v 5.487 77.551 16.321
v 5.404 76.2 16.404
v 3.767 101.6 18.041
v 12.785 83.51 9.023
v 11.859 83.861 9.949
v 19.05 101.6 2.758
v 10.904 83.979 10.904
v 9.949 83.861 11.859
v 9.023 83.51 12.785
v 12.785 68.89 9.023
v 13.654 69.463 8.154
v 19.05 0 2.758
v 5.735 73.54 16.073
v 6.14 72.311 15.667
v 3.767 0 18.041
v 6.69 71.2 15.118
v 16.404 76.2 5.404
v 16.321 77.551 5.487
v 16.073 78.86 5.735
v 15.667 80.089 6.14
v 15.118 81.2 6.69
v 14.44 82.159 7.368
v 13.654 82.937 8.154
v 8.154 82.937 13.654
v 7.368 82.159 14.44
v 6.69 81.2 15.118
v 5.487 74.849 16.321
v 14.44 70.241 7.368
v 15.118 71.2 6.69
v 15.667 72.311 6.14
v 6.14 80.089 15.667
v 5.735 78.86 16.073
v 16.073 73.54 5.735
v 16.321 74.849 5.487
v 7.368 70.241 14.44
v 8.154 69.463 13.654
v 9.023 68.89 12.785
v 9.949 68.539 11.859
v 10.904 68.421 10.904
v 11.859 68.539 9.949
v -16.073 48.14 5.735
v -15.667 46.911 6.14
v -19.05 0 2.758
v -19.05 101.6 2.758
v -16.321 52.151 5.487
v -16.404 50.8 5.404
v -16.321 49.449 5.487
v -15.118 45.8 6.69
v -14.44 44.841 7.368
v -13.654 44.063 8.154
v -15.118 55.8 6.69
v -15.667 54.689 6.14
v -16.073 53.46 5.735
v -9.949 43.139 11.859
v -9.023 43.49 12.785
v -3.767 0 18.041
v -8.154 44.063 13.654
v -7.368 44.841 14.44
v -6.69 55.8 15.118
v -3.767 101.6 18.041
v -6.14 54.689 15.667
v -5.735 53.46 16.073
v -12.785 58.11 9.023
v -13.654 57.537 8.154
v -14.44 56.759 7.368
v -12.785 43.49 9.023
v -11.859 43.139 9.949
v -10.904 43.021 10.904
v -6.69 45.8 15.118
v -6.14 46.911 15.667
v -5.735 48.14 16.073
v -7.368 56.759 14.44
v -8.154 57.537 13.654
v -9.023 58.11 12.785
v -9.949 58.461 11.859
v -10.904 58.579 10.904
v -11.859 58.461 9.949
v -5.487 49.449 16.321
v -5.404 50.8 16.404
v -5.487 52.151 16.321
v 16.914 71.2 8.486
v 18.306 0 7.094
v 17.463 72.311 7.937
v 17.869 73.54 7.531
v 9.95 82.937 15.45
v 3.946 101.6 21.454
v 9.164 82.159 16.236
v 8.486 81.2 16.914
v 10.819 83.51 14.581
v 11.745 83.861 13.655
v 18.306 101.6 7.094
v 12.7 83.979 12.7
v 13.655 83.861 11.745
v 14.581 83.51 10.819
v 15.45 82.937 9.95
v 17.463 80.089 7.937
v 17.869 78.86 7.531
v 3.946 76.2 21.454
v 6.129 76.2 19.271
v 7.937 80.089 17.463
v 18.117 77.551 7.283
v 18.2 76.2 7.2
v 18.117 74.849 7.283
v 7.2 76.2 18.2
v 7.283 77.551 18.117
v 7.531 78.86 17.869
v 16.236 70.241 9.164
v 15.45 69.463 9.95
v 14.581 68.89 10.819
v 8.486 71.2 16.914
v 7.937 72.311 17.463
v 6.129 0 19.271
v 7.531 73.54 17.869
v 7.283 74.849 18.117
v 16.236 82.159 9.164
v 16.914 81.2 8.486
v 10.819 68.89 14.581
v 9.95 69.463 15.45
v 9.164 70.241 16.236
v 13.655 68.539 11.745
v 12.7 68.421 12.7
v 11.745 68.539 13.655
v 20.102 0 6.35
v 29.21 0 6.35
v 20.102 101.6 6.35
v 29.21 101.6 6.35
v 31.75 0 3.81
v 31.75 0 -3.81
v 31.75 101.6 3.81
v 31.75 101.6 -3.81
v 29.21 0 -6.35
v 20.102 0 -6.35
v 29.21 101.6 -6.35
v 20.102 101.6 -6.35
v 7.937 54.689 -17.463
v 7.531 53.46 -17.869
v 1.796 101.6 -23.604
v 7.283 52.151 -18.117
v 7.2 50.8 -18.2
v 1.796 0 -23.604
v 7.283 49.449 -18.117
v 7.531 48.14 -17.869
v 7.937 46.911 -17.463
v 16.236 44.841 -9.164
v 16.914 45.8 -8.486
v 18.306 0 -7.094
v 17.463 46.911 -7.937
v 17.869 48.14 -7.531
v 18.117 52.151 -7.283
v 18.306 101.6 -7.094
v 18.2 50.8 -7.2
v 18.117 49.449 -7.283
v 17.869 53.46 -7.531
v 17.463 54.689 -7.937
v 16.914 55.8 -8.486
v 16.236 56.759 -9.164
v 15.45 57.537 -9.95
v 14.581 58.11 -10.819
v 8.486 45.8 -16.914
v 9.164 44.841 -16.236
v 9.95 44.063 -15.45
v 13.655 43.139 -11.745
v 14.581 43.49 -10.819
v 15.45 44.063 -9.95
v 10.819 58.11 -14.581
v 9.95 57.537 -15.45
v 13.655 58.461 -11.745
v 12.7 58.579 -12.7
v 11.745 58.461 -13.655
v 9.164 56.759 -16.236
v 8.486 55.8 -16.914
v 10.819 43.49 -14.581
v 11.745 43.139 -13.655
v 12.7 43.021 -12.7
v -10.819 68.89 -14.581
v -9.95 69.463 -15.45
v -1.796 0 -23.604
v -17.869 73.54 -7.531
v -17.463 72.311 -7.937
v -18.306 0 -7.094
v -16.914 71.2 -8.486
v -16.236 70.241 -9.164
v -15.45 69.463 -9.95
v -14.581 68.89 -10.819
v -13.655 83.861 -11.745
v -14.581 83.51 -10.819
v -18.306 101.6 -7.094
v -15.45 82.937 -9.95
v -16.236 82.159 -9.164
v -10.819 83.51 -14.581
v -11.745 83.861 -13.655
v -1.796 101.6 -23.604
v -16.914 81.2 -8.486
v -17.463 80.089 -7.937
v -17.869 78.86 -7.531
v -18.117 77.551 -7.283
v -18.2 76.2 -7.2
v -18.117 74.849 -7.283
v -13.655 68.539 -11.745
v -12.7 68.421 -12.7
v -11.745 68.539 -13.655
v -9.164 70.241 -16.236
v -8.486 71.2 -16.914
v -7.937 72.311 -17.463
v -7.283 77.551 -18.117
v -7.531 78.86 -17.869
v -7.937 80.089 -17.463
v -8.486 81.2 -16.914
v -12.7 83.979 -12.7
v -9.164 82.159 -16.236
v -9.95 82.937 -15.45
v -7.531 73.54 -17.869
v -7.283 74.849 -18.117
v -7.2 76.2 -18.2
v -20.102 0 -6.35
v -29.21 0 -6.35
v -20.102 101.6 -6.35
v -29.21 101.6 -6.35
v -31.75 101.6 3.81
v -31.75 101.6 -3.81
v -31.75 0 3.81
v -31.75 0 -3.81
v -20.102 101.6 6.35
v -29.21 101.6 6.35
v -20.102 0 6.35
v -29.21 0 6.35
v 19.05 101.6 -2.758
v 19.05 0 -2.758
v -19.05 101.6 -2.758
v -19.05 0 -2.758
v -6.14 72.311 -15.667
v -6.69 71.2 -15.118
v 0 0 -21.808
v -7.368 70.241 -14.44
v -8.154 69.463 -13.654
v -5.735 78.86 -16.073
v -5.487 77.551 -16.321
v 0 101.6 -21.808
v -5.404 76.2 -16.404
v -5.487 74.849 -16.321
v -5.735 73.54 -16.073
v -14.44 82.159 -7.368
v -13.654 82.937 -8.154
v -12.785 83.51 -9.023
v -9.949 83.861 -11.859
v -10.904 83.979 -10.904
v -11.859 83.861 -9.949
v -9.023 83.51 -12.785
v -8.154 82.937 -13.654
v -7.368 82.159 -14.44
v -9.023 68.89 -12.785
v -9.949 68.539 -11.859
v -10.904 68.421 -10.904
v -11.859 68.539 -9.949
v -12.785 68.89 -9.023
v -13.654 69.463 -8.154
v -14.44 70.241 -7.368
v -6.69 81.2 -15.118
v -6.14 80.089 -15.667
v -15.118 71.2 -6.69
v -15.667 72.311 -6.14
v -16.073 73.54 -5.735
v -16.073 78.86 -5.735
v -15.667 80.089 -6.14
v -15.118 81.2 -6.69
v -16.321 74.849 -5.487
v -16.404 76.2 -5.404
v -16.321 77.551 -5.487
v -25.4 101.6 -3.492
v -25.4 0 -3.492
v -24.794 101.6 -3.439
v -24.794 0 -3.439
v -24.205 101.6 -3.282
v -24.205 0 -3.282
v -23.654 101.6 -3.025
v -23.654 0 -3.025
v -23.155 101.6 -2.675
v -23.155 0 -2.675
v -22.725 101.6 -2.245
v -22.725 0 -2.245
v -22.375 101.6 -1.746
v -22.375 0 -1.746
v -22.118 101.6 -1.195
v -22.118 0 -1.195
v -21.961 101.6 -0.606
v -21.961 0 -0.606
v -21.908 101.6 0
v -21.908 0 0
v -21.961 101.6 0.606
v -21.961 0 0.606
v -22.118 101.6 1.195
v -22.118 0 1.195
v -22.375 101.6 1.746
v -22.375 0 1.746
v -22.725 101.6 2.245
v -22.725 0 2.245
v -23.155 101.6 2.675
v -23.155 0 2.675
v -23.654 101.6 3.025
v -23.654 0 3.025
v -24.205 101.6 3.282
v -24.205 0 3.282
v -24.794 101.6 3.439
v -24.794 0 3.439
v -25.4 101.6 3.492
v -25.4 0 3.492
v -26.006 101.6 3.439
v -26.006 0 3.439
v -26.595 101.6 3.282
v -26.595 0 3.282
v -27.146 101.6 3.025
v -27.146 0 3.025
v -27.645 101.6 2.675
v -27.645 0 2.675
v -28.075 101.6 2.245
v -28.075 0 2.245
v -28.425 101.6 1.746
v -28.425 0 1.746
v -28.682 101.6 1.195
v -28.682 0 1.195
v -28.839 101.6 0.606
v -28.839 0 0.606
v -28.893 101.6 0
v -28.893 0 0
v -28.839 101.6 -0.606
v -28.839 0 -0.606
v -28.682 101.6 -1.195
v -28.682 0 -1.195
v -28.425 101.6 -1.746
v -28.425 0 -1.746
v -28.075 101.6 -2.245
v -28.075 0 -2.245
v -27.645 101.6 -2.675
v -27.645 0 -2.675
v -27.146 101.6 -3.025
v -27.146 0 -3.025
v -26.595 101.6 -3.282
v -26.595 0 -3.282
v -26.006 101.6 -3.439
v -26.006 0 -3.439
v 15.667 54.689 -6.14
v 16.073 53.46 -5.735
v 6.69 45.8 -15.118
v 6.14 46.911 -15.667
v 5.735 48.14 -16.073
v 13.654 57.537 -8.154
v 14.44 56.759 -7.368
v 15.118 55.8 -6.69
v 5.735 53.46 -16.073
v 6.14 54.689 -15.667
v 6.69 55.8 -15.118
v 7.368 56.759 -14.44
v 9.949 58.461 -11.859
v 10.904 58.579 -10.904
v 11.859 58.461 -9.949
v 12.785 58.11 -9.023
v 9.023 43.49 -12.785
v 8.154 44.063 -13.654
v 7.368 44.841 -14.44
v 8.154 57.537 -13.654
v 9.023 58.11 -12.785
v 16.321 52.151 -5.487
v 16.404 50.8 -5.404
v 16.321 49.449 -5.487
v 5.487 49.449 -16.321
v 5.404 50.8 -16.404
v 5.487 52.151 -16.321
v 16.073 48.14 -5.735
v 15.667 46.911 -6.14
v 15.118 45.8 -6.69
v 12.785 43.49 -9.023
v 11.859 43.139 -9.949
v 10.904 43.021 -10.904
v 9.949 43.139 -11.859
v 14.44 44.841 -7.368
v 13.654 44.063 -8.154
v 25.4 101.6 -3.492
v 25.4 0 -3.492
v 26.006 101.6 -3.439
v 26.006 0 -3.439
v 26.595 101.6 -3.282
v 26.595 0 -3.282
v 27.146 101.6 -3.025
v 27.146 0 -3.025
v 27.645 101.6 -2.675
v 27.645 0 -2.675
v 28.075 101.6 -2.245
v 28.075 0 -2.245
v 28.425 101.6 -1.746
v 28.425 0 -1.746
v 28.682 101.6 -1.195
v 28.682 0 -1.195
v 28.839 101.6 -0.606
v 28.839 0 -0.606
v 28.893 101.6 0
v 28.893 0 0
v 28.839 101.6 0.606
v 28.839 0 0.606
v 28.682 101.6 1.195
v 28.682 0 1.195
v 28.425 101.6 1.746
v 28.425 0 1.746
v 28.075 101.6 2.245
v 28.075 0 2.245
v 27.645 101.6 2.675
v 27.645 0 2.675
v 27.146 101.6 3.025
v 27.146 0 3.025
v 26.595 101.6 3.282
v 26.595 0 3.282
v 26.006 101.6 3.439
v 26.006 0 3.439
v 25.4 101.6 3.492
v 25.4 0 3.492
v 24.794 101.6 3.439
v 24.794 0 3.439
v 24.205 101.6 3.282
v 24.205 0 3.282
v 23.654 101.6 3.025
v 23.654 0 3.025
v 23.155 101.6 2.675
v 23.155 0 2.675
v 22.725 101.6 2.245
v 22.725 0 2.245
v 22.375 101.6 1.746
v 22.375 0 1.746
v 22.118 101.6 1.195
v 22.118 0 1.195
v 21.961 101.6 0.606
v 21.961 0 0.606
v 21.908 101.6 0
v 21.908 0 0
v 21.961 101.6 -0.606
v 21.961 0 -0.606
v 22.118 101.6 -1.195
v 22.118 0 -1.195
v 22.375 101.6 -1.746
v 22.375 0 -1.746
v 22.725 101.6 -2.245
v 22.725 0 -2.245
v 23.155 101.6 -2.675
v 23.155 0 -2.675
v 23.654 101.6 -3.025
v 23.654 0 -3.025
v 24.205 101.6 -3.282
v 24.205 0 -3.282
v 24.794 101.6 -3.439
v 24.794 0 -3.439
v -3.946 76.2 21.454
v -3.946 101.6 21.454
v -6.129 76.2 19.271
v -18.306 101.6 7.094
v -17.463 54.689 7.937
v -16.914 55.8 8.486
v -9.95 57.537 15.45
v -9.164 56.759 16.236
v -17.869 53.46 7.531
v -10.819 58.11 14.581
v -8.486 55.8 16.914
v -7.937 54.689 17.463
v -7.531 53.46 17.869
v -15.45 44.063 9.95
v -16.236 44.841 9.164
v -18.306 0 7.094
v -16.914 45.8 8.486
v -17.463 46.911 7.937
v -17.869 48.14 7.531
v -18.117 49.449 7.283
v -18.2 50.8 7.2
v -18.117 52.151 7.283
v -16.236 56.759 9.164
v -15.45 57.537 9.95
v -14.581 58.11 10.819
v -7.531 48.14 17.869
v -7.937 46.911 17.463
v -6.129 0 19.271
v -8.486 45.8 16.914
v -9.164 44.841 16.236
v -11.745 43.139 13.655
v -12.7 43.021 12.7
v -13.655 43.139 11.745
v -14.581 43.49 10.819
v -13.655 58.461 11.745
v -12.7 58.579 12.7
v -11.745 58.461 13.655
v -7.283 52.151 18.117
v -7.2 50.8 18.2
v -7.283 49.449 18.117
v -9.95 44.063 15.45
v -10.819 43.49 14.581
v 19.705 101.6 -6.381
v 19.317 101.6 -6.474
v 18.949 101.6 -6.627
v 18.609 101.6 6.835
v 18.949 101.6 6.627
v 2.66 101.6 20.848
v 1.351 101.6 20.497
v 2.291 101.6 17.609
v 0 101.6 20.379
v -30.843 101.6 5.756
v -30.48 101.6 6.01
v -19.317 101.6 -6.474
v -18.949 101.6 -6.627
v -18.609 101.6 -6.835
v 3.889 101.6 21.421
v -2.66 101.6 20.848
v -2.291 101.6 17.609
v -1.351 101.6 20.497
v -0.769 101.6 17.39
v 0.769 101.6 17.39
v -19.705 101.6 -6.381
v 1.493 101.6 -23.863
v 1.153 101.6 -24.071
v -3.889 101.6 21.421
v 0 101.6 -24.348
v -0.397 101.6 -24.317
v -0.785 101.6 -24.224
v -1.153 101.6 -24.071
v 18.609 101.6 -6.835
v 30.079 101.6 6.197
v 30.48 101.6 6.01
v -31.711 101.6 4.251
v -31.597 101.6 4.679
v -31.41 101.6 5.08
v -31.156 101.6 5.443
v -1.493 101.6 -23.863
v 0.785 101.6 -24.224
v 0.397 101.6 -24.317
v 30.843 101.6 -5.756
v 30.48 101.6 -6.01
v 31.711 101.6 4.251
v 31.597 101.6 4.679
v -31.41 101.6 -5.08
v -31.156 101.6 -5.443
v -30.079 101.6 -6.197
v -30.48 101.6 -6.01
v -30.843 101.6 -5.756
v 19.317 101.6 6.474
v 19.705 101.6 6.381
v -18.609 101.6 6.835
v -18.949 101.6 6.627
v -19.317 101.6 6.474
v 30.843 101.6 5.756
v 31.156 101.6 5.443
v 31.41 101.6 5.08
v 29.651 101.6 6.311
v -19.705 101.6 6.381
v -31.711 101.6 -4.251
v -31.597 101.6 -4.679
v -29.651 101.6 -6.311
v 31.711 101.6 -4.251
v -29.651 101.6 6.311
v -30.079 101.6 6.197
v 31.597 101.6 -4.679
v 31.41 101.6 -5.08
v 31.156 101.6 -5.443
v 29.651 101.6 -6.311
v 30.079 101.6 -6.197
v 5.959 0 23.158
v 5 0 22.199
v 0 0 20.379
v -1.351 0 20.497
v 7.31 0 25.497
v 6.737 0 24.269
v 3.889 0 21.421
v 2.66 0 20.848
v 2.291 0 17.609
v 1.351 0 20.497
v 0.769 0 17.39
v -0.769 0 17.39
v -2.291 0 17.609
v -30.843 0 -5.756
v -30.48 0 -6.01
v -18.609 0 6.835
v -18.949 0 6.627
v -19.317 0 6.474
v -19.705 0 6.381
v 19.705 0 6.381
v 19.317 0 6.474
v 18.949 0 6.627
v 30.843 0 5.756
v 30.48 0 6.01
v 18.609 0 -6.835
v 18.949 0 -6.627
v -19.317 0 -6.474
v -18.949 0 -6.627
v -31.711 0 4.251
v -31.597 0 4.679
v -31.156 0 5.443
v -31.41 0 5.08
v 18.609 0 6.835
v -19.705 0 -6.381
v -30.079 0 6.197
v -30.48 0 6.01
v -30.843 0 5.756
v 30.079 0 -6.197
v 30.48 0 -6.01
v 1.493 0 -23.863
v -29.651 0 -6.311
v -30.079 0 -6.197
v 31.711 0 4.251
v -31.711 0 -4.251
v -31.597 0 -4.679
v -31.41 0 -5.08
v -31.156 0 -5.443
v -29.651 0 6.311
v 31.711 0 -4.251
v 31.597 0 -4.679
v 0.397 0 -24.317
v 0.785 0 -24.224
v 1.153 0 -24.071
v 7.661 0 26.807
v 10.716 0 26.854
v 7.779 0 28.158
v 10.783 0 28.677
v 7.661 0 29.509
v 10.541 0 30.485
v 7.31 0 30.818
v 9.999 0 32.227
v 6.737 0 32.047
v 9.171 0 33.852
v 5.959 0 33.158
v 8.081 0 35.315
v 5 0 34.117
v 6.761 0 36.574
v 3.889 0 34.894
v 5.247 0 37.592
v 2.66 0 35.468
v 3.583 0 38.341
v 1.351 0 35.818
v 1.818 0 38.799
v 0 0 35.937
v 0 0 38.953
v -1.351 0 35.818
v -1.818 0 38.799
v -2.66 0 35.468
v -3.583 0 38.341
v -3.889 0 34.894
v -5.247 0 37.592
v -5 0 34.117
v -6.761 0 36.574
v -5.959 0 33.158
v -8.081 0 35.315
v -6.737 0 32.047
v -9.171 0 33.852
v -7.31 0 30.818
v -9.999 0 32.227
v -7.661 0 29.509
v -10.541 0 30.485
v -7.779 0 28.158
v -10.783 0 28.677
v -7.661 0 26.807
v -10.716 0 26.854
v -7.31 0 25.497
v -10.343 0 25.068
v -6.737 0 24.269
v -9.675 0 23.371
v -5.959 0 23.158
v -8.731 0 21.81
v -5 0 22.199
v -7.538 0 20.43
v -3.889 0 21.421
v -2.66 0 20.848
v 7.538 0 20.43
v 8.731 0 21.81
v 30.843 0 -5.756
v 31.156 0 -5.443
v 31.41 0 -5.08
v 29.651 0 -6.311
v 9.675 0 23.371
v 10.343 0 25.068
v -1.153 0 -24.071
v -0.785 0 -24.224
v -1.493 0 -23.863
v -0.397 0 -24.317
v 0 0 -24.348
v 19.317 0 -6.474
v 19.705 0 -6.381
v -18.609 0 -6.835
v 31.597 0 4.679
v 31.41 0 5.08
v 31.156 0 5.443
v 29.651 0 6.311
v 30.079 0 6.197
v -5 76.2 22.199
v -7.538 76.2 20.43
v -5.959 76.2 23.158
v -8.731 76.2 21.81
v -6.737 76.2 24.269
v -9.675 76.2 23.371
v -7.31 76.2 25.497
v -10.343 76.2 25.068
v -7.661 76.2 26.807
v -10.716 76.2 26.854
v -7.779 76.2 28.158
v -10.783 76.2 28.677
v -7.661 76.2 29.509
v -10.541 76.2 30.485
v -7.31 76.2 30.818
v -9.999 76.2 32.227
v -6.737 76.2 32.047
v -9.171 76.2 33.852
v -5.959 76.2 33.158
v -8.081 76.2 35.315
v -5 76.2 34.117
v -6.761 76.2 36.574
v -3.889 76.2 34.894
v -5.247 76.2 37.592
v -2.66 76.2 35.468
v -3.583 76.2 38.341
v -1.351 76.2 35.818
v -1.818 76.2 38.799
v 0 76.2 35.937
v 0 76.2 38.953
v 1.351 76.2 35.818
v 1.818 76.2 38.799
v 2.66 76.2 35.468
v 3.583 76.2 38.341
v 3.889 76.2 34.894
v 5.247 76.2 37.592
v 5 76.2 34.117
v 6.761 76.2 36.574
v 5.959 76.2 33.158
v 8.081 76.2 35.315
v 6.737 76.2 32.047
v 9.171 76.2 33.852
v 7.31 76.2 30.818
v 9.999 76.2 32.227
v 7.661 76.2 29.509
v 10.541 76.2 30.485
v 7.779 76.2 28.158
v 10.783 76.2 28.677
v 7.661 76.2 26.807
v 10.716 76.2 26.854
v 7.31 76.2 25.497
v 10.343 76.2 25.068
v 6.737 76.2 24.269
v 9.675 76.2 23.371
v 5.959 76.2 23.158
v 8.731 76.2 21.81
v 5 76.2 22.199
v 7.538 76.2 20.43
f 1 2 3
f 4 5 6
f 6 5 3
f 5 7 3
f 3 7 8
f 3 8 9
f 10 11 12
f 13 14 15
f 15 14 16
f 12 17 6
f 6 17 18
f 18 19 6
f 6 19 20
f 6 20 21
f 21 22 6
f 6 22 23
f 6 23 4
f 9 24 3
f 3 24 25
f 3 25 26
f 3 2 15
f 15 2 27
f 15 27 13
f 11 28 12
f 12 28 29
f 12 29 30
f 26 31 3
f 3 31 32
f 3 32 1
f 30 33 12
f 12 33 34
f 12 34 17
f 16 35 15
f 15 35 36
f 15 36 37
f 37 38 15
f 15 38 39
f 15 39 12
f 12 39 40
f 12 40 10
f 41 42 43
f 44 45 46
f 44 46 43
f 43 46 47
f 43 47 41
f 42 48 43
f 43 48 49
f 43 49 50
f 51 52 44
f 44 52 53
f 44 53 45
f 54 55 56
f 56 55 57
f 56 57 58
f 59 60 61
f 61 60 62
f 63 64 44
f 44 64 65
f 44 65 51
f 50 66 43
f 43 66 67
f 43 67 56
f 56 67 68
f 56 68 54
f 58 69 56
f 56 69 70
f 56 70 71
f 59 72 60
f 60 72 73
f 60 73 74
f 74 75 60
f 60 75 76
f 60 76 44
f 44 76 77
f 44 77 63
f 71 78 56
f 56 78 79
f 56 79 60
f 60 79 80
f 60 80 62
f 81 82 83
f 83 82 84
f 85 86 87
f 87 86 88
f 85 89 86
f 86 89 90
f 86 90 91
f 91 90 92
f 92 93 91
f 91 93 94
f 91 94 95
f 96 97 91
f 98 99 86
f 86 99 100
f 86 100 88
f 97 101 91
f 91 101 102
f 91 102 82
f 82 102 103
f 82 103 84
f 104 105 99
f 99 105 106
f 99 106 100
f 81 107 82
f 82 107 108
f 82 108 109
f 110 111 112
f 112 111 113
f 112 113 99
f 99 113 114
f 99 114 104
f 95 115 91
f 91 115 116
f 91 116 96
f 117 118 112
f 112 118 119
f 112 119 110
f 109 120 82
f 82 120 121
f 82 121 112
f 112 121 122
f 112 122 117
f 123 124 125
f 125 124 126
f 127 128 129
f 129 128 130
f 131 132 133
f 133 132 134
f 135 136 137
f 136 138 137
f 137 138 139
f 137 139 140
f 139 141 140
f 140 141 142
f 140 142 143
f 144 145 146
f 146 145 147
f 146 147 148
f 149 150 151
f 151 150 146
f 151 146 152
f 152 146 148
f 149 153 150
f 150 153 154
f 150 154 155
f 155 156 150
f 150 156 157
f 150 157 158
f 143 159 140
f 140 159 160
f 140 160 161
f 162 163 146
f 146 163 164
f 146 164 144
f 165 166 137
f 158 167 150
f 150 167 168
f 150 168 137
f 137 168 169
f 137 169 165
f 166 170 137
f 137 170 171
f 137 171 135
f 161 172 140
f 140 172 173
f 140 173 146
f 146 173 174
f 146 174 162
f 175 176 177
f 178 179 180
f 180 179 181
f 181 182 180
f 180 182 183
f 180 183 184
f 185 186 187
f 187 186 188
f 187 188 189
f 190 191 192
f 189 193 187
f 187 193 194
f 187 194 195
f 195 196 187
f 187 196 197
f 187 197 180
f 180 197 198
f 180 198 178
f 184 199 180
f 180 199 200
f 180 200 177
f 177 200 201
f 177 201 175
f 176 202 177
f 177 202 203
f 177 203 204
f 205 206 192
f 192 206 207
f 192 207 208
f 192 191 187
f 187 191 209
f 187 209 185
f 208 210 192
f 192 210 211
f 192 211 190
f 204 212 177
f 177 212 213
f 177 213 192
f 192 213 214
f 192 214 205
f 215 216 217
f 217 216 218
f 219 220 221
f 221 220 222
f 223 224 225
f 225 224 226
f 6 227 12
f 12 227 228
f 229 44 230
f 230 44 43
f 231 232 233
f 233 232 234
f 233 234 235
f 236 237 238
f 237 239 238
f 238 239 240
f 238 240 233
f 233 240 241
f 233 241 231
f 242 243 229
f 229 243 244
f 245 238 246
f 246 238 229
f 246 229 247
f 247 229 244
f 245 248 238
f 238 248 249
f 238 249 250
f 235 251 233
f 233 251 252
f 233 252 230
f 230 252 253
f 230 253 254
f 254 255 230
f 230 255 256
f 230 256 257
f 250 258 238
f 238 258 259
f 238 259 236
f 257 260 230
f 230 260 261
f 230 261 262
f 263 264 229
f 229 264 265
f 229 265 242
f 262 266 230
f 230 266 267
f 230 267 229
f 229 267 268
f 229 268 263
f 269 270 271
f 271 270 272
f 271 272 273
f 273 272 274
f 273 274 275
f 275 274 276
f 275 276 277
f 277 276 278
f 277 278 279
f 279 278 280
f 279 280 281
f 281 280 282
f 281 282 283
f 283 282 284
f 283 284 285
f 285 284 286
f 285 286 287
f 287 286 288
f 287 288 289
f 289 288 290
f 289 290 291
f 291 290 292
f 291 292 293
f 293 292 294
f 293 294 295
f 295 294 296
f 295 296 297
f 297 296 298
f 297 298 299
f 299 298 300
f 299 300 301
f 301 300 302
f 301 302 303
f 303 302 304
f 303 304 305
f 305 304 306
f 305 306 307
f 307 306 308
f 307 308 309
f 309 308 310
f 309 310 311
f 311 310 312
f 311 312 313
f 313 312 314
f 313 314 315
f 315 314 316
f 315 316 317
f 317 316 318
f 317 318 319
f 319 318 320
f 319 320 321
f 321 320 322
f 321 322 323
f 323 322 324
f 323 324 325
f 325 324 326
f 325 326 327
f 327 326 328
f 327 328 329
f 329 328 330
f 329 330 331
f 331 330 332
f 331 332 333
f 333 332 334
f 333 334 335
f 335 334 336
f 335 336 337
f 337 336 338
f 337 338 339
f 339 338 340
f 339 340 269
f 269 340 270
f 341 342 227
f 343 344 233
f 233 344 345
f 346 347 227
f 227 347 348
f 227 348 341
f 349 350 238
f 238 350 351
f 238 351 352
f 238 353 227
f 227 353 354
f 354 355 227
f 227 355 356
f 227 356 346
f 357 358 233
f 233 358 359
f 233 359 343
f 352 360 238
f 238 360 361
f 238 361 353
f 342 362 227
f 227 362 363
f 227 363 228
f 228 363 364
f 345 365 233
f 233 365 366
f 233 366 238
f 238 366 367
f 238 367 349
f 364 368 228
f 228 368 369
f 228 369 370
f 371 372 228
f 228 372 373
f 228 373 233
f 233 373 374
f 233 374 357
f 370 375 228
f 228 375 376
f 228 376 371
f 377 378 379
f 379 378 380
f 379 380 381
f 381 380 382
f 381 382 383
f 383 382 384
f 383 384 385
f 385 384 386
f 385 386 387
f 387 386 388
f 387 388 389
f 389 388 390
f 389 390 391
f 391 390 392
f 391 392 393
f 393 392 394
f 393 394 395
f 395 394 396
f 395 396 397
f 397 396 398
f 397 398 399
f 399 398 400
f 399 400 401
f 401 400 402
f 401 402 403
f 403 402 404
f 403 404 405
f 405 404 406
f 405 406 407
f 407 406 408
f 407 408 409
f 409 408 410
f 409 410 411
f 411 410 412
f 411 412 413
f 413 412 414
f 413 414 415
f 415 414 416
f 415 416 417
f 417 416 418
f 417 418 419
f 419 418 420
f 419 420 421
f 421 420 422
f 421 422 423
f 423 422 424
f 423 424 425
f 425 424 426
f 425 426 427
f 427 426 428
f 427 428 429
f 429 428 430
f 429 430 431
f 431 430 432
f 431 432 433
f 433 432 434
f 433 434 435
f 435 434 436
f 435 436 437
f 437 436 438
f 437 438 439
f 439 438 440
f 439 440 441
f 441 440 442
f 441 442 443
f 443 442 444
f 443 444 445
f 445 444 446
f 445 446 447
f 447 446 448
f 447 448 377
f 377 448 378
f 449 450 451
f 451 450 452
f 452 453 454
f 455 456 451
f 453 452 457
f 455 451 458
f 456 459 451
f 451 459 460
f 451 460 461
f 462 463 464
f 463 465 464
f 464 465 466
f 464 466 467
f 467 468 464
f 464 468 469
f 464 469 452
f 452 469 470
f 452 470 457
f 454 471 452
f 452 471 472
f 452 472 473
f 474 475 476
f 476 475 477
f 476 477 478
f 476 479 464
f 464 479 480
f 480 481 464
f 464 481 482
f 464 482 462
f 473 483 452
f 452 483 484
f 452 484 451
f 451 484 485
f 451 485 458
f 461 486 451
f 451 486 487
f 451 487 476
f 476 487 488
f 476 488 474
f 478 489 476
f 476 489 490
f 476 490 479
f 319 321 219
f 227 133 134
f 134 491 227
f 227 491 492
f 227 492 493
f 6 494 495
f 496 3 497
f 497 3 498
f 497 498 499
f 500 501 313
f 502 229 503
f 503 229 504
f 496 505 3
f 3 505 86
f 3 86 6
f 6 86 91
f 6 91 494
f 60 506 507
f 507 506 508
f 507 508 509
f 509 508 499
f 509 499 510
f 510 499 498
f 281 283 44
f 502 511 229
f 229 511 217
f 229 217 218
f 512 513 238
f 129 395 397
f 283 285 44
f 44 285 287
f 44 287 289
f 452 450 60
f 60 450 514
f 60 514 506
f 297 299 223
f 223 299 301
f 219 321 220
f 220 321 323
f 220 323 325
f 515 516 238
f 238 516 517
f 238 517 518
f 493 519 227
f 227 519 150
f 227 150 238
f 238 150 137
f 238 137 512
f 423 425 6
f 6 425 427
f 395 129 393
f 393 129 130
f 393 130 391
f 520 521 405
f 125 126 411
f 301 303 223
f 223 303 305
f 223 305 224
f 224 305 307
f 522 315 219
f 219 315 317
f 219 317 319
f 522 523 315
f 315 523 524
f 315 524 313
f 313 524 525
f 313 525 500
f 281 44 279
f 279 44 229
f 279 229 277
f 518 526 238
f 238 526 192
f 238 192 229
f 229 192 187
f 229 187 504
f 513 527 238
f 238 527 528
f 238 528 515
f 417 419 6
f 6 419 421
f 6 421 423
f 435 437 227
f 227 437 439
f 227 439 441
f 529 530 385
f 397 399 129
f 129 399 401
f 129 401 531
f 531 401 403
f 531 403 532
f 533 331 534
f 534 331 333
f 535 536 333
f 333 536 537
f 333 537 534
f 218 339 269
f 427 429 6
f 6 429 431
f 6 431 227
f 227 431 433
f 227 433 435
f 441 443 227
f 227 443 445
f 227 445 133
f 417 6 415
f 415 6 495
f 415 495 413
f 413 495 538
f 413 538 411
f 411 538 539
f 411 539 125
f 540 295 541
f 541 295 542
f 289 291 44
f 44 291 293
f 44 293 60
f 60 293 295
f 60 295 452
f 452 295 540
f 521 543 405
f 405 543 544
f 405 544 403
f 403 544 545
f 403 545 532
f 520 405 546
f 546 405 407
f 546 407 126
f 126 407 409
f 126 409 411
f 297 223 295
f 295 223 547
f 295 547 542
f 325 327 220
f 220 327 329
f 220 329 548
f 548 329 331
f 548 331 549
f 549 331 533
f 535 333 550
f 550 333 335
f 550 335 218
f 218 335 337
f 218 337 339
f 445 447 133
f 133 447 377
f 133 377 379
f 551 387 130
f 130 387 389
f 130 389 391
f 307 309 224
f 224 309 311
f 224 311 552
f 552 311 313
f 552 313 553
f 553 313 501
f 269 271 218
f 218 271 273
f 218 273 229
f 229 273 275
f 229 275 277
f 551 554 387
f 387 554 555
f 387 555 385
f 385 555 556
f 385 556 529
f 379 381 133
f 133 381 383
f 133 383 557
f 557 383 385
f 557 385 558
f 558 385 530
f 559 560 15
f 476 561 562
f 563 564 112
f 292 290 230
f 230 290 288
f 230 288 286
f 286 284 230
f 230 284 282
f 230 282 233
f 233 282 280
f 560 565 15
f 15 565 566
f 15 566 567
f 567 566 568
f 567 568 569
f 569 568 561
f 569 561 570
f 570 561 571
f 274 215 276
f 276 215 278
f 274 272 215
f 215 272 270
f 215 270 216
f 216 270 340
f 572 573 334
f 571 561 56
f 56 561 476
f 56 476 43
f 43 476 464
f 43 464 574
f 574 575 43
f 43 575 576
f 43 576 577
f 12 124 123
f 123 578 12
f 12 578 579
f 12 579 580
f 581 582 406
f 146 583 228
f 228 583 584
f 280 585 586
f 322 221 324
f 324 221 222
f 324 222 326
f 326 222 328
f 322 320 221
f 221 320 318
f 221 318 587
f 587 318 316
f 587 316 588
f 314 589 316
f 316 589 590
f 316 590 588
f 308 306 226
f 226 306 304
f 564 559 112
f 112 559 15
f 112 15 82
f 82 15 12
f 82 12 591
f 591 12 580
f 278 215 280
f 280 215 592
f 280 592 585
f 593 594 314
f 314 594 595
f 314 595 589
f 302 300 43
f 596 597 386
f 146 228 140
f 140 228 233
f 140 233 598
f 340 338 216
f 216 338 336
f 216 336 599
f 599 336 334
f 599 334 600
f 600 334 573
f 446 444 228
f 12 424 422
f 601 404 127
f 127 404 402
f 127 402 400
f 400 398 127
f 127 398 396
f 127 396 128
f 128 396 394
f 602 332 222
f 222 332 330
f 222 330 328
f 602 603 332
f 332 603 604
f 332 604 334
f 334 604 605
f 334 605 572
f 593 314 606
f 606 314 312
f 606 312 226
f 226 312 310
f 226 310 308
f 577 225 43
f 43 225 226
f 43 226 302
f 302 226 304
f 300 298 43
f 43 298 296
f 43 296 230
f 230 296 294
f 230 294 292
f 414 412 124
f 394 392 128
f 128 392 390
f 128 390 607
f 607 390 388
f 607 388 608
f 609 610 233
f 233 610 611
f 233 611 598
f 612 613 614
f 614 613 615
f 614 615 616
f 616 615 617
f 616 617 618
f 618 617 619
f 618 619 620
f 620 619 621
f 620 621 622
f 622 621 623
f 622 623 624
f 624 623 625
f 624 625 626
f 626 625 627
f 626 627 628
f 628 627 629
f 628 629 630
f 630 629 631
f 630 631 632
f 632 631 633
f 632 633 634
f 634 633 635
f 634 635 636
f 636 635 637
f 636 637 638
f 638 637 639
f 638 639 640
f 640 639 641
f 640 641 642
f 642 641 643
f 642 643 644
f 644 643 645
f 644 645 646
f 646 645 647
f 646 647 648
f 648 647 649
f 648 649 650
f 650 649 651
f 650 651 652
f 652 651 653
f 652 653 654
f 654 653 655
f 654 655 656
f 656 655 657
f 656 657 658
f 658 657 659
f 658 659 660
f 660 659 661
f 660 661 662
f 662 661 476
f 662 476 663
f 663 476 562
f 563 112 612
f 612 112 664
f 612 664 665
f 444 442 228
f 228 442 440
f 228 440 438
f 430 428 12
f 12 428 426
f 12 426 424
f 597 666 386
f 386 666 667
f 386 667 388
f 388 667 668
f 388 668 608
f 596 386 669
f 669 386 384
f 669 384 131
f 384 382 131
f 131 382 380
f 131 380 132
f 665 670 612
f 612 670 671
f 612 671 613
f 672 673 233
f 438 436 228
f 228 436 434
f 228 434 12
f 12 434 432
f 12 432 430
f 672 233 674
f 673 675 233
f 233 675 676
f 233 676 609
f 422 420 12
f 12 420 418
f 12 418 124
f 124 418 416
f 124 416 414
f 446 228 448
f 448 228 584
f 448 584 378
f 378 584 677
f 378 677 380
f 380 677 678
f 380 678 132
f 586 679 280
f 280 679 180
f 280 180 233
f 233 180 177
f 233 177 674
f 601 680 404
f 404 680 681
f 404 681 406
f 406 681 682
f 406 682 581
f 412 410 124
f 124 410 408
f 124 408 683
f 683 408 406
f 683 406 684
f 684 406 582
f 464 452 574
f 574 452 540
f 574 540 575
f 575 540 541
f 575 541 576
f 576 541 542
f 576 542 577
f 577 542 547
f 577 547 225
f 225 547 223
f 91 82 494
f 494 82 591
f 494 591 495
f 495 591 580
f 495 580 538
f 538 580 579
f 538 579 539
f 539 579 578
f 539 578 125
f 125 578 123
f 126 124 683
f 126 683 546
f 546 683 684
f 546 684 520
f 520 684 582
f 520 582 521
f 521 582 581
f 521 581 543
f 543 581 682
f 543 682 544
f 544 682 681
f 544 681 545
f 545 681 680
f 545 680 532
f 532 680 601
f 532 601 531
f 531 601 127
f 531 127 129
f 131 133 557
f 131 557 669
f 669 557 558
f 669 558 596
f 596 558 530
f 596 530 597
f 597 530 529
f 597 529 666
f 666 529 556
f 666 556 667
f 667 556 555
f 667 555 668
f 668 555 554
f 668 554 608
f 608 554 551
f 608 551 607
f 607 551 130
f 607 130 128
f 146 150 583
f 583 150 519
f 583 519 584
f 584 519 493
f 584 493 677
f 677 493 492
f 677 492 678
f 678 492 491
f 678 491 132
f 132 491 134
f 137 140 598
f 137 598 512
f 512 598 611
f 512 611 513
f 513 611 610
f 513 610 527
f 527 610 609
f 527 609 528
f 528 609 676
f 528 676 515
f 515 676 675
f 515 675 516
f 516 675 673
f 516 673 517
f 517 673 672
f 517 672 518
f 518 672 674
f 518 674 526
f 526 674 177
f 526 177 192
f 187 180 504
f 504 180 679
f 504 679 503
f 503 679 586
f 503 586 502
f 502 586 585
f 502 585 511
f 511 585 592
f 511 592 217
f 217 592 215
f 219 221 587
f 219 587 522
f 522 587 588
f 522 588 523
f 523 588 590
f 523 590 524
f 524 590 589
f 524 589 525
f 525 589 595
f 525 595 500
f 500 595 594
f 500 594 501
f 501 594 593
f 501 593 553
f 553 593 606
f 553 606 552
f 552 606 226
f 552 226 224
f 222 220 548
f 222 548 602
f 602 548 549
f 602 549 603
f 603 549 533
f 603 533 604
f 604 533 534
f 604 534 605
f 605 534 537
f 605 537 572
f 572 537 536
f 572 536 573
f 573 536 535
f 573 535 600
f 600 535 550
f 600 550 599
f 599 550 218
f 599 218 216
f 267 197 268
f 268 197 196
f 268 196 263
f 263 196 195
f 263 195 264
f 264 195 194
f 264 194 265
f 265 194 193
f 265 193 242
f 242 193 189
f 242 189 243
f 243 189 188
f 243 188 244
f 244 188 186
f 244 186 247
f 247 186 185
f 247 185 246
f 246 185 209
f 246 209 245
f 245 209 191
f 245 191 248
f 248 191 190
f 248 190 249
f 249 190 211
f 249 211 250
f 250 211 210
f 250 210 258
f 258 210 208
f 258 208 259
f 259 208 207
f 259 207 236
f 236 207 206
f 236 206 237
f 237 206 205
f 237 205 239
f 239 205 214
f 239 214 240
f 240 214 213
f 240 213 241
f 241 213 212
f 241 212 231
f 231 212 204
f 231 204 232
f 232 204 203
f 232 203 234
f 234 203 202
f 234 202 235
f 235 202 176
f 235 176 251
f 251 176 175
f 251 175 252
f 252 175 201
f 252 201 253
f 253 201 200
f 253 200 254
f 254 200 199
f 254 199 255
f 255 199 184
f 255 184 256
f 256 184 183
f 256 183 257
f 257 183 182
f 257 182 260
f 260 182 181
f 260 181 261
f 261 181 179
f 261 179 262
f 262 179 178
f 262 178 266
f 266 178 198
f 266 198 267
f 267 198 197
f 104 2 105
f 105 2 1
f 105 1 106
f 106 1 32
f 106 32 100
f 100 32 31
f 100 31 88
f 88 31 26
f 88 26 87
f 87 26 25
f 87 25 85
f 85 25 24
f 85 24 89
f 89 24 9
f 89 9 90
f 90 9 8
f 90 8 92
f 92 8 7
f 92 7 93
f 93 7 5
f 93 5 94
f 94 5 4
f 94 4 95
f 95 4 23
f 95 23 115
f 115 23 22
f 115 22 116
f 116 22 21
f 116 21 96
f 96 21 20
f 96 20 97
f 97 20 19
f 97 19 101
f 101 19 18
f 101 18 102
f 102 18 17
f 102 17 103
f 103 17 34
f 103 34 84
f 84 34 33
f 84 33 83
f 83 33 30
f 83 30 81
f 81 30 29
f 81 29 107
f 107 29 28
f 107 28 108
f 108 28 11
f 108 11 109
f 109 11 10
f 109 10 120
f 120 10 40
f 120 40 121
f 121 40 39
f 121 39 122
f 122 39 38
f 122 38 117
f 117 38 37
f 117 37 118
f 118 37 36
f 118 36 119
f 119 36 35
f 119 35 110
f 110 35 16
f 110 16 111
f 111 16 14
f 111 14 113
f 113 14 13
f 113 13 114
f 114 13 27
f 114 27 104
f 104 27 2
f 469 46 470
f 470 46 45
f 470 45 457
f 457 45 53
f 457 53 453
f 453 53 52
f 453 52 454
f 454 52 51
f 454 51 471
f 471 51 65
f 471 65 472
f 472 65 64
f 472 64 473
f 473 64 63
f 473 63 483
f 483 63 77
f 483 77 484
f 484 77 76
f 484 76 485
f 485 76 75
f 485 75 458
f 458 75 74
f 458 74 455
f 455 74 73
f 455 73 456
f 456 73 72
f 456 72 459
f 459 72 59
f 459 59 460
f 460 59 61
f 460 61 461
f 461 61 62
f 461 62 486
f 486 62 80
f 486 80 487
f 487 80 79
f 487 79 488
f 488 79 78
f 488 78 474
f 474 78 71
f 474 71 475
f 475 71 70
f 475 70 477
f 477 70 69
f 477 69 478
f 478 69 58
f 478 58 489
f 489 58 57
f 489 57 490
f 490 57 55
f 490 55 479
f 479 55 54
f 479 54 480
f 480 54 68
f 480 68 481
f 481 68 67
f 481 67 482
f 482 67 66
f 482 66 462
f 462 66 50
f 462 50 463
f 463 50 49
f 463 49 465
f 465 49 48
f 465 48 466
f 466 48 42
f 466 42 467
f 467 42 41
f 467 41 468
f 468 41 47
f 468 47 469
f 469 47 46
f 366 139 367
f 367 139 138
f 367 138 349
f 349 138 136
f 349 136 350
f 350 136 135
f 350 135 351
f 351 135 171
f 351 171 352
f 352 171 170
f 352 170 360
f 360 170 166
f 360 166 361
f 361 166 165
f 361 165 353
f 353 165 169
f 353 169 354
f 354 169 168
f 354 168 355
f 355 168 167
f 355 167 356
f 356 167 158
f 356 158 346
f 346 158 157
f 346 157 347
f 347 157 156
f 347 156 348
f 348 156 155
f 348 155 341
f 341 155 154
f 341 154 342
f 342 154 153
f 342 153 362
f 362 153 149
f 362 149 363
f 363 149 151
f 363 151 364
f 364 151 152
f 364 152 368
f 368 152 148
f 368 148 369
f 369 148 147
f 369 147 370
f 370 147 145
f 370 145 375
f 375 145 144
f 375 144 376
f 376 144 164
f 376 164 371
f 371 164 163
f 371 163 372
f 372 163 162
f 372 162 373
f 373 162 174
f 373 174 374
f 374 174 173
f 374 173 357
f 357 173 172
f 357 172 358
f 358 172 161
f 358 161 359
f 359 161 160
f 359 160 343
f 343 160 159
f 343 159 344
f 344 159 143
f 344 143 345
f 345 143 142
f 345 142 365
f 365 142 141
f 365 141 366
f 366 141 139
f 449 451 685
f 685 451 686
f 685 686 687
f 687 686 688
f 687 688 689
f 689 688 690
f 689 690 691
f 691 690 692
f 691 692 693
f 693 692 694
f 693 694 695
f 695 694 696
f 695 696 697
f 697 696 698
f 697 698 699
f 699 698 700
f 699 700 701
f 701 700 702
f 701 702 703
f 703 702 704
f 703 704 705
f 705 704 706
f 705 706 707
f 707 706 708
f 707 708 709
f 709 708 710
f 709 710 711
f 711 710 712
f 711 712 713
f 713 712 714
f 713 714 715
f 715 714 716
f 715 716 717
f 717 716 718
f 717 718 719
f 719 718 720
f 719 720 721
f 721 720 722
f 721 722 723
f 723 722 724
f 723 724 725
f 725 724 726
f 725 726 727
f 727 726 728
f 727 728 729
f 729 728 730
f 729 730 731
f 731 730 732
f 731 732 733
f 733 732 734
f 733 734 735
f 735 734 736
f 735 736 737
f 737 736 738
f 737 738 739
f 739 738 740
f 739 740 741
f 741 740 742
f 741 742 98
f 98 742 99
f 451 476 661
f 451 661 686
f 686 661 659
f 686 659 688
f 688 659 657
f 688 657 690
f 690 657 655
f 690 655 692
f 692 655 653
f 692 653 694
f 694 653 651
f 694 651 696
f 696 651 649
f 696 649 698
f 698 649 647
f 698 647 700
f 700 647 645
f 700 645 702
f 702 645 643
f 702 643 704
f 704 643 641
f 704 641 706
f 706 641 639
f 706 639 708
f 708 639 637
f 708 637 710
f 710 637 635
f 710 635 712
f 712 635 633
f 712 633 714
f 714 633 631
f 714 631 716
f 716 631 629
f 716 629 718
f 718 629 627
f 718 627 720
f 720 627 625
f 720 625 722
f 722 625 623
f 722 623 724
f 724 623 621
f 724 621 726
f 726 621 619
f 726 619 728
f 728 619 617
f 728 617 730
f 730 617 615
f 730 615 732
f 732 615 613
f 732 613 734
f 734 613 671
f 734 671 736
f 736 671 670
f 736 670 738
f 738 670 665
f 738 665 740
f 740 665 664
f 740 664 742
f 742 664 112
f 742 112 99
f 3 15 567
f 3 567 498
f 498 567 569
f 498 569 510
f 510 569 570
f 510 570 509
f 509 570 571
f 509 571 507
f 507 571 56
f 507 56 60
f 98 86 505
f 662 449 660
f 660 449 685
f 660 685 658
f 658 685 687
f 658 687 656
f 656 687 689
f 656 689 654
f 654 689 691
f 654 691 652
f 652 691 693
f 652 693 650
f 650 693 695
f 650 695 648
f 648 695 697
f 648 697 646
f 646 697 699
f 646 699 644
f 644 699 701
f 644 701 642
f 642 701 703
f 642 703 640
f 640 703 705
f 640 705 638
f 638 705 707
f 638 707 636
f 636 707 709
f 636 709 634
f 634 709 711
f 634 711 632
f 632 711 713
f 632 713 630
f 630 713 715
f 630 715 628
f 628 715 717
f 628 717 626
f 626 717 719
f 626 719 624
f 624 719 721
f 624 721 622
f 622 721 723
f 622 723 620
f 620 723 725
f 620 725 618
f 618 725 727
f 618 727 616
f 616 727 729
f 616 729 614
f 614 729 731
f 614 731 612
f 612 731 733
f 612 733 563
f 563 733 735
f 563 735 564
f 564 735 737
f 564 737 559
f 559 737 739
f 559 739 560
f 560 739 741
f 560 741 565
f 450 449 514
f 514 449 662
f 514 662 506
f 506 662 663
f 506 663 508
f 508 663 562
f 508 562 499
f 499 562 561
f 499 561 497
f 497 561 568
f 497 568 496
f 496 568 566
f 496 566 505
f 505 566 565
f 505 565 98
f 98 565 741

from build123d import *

# Parameters (mm, degrees)
SKETCH2_R               = 3.4925
BOSS_EXTRUDE1_DEPTH     = 101.6
FILLET1_R               = 2.54
SKETCH12_R              = 7.77875
CUT_EXTRUDE2_DEPTH      = 22.706691527
CUT_EXTRUDE2_DEPTH_BACK = 58.627716011
SKETCH13_R              = 7.77875
CUT_EXTRUDE3_DEPTH      = 22.706691527
CUT_EXTRUDE3_DEPTH_BACK = 58.627716011
SKETCH14_R              = 10.795
SKETCH14_R_2            = 7.77875
BOSS_EXTRUDE2_DEPTH     = 76.2
SKETCH14_2_R            = 7.77875
CUT_EXTRUDE4_DEPTH      = 102.6
BOSS_EXTRUDE3_DEPTH     = 25.4


with BuildPart() as part:
    # Sketch2 → Boss-Extrude1 (new body)
    with BuildSketch(Plane(origin=(0, 0, 0), x_dir=(1, 0, 0), z_dir=(0, 1, 0))):
        Polygon((19.05, -6.35), (31.75, -6.35), (31.75, 6.35), (19.05, 6.35), (0, 25.4), (-19.05, 6.35), (-31.75, 6.35), (-31.75, -6.35), (-19.05, -6.35), (0, -25.4), align=None)
        Polygon((-19.05, 2.757897552), (0, 21.807897552), (19.05, 2.757897552), (19.05, -2.757897552), (0, -21.807897552), (-19.05, -2.757897552), align=None, mode=Mode.SUBTRACT)
        with Locations((25.4, 0)):
            Circle(SKETCH2_R, mode=Mode.SUBTRACT)
        with Locations((-25.4, 0)):
            Circle(SKETCH2_R, mode=Mode.SUBTRACT)
    extrude(amount=BOSS_EXTRUDE1_DEPTH)

    # Fillet1
    fillet1_edges = [part.edges().sort_by_distance(p)[0] for p in [
        (0, 50.8, 25.4),
        (-19.05, 50.8, 6.35),
        (-31.75, 50.8, 6.35),
        (-31.75, 50.8, -6.35),
        (-19.05, 50.8, -6.35),
        (0, 50.8, -25.4),
        (19.05, 50.8, -6.35),
        (31.75, 50.8, -6.35),
        (31.75, 50.8, 6.35),
        (19.05, 50.8, 6.35),
    ]]
    fillet(fillet1_edges, radius=FILLET1_R)

    # Sketch12 → Cut-Extrude2 (cut, two sides)
    with BuildSketch(Plane(origin=(-12.7, 0, -12.7), x_dir=(-0.707106781, 0, 0.707106781), z_dir=(-0.707106781, 0, -0.707106781))) as cut_extrude2_sk:
        with Locations((0, 76.2)):
            Circle(SKETCH12_R)
    extrude(amount=CUT_EXTRUDE2_DEPTH, mode=Mode.SUBTRACT)
    extrude(cut_extrude2_sk.sketch, amount=-CUT_EXTRUDE2_DEPTH_BACK, mode=Mode.SUBTRACT)

    # Sketch13 → Cut-Extrude3 (cut, two sides)
    with BuildSketch(Plane(origin=(12.7, 0, -12.7), x_dir=(-0.707106781, 0, -0.707106781), z_dir=(0.707106781, 0, -0.707106781))) as cut_extrude3_sk:
        with Locations((0, 50.8)):
            Circle(SKETCH13_R)
    extrude(amount=CUT_EXTRUDE3_DEPTH, mode=Mode.SUBTRACT)
    extrude(cut_extrude3_sk.sketch, amount=-CUT_EXTRUDE3_DEPTH_BACK, mode=Mode.SUBTRACT)

    # Sketch14 → Boss-Extrude2 (add)
    with BuildSketch(Plane.XZ):
        with Locations((0, 28.157897552)):
            Circle(SKETCH14_R)
        with Locations((0, 28.157897552)):
            Circle(SKETCH14_R_2, mode=Mode.SUBTRACT)
    extrude(amount=-BOSS_EXTRUDE2_DEPTH)

    # Sketch14<2> → Cut-Extrude4 (cut, through all)
    with BuildSketch(Plane.XZ):
        with Locations((0, 28.157897552)):
            Circle(SKETCH14_2_R)
    extrude(amount=-CUT_EXTRUDE4_DEPTH, mode=Mode.SUBTRACT)

    # Sketch15 → Boss-Extrude3 (add)
    with BuildSketch(Plane(origin=(0, 76.2, 0), x_dir=(1, 0, 0), z_dir=(0, 1, 0))):
        with BuildLine():
            Line((1.316531006, -20.491366545), (3.766569527, -18.041328024))
            ThreePointArc((3.766569527, -18.041328024), (0, -17.362897552), (-3.766569527, -18.041328024))
            Line((-3.766569527, -18.041328024), (-1.316531006, -20.491366545))
            ThreePointArc((-1.316531006, -20.491366545), (0, -20.379147552), (1.316531006, -20.491366545))
        make_face()
    extrude(amount=BOSS_EXTRUDE3_DEPTH)


solid = part.part
